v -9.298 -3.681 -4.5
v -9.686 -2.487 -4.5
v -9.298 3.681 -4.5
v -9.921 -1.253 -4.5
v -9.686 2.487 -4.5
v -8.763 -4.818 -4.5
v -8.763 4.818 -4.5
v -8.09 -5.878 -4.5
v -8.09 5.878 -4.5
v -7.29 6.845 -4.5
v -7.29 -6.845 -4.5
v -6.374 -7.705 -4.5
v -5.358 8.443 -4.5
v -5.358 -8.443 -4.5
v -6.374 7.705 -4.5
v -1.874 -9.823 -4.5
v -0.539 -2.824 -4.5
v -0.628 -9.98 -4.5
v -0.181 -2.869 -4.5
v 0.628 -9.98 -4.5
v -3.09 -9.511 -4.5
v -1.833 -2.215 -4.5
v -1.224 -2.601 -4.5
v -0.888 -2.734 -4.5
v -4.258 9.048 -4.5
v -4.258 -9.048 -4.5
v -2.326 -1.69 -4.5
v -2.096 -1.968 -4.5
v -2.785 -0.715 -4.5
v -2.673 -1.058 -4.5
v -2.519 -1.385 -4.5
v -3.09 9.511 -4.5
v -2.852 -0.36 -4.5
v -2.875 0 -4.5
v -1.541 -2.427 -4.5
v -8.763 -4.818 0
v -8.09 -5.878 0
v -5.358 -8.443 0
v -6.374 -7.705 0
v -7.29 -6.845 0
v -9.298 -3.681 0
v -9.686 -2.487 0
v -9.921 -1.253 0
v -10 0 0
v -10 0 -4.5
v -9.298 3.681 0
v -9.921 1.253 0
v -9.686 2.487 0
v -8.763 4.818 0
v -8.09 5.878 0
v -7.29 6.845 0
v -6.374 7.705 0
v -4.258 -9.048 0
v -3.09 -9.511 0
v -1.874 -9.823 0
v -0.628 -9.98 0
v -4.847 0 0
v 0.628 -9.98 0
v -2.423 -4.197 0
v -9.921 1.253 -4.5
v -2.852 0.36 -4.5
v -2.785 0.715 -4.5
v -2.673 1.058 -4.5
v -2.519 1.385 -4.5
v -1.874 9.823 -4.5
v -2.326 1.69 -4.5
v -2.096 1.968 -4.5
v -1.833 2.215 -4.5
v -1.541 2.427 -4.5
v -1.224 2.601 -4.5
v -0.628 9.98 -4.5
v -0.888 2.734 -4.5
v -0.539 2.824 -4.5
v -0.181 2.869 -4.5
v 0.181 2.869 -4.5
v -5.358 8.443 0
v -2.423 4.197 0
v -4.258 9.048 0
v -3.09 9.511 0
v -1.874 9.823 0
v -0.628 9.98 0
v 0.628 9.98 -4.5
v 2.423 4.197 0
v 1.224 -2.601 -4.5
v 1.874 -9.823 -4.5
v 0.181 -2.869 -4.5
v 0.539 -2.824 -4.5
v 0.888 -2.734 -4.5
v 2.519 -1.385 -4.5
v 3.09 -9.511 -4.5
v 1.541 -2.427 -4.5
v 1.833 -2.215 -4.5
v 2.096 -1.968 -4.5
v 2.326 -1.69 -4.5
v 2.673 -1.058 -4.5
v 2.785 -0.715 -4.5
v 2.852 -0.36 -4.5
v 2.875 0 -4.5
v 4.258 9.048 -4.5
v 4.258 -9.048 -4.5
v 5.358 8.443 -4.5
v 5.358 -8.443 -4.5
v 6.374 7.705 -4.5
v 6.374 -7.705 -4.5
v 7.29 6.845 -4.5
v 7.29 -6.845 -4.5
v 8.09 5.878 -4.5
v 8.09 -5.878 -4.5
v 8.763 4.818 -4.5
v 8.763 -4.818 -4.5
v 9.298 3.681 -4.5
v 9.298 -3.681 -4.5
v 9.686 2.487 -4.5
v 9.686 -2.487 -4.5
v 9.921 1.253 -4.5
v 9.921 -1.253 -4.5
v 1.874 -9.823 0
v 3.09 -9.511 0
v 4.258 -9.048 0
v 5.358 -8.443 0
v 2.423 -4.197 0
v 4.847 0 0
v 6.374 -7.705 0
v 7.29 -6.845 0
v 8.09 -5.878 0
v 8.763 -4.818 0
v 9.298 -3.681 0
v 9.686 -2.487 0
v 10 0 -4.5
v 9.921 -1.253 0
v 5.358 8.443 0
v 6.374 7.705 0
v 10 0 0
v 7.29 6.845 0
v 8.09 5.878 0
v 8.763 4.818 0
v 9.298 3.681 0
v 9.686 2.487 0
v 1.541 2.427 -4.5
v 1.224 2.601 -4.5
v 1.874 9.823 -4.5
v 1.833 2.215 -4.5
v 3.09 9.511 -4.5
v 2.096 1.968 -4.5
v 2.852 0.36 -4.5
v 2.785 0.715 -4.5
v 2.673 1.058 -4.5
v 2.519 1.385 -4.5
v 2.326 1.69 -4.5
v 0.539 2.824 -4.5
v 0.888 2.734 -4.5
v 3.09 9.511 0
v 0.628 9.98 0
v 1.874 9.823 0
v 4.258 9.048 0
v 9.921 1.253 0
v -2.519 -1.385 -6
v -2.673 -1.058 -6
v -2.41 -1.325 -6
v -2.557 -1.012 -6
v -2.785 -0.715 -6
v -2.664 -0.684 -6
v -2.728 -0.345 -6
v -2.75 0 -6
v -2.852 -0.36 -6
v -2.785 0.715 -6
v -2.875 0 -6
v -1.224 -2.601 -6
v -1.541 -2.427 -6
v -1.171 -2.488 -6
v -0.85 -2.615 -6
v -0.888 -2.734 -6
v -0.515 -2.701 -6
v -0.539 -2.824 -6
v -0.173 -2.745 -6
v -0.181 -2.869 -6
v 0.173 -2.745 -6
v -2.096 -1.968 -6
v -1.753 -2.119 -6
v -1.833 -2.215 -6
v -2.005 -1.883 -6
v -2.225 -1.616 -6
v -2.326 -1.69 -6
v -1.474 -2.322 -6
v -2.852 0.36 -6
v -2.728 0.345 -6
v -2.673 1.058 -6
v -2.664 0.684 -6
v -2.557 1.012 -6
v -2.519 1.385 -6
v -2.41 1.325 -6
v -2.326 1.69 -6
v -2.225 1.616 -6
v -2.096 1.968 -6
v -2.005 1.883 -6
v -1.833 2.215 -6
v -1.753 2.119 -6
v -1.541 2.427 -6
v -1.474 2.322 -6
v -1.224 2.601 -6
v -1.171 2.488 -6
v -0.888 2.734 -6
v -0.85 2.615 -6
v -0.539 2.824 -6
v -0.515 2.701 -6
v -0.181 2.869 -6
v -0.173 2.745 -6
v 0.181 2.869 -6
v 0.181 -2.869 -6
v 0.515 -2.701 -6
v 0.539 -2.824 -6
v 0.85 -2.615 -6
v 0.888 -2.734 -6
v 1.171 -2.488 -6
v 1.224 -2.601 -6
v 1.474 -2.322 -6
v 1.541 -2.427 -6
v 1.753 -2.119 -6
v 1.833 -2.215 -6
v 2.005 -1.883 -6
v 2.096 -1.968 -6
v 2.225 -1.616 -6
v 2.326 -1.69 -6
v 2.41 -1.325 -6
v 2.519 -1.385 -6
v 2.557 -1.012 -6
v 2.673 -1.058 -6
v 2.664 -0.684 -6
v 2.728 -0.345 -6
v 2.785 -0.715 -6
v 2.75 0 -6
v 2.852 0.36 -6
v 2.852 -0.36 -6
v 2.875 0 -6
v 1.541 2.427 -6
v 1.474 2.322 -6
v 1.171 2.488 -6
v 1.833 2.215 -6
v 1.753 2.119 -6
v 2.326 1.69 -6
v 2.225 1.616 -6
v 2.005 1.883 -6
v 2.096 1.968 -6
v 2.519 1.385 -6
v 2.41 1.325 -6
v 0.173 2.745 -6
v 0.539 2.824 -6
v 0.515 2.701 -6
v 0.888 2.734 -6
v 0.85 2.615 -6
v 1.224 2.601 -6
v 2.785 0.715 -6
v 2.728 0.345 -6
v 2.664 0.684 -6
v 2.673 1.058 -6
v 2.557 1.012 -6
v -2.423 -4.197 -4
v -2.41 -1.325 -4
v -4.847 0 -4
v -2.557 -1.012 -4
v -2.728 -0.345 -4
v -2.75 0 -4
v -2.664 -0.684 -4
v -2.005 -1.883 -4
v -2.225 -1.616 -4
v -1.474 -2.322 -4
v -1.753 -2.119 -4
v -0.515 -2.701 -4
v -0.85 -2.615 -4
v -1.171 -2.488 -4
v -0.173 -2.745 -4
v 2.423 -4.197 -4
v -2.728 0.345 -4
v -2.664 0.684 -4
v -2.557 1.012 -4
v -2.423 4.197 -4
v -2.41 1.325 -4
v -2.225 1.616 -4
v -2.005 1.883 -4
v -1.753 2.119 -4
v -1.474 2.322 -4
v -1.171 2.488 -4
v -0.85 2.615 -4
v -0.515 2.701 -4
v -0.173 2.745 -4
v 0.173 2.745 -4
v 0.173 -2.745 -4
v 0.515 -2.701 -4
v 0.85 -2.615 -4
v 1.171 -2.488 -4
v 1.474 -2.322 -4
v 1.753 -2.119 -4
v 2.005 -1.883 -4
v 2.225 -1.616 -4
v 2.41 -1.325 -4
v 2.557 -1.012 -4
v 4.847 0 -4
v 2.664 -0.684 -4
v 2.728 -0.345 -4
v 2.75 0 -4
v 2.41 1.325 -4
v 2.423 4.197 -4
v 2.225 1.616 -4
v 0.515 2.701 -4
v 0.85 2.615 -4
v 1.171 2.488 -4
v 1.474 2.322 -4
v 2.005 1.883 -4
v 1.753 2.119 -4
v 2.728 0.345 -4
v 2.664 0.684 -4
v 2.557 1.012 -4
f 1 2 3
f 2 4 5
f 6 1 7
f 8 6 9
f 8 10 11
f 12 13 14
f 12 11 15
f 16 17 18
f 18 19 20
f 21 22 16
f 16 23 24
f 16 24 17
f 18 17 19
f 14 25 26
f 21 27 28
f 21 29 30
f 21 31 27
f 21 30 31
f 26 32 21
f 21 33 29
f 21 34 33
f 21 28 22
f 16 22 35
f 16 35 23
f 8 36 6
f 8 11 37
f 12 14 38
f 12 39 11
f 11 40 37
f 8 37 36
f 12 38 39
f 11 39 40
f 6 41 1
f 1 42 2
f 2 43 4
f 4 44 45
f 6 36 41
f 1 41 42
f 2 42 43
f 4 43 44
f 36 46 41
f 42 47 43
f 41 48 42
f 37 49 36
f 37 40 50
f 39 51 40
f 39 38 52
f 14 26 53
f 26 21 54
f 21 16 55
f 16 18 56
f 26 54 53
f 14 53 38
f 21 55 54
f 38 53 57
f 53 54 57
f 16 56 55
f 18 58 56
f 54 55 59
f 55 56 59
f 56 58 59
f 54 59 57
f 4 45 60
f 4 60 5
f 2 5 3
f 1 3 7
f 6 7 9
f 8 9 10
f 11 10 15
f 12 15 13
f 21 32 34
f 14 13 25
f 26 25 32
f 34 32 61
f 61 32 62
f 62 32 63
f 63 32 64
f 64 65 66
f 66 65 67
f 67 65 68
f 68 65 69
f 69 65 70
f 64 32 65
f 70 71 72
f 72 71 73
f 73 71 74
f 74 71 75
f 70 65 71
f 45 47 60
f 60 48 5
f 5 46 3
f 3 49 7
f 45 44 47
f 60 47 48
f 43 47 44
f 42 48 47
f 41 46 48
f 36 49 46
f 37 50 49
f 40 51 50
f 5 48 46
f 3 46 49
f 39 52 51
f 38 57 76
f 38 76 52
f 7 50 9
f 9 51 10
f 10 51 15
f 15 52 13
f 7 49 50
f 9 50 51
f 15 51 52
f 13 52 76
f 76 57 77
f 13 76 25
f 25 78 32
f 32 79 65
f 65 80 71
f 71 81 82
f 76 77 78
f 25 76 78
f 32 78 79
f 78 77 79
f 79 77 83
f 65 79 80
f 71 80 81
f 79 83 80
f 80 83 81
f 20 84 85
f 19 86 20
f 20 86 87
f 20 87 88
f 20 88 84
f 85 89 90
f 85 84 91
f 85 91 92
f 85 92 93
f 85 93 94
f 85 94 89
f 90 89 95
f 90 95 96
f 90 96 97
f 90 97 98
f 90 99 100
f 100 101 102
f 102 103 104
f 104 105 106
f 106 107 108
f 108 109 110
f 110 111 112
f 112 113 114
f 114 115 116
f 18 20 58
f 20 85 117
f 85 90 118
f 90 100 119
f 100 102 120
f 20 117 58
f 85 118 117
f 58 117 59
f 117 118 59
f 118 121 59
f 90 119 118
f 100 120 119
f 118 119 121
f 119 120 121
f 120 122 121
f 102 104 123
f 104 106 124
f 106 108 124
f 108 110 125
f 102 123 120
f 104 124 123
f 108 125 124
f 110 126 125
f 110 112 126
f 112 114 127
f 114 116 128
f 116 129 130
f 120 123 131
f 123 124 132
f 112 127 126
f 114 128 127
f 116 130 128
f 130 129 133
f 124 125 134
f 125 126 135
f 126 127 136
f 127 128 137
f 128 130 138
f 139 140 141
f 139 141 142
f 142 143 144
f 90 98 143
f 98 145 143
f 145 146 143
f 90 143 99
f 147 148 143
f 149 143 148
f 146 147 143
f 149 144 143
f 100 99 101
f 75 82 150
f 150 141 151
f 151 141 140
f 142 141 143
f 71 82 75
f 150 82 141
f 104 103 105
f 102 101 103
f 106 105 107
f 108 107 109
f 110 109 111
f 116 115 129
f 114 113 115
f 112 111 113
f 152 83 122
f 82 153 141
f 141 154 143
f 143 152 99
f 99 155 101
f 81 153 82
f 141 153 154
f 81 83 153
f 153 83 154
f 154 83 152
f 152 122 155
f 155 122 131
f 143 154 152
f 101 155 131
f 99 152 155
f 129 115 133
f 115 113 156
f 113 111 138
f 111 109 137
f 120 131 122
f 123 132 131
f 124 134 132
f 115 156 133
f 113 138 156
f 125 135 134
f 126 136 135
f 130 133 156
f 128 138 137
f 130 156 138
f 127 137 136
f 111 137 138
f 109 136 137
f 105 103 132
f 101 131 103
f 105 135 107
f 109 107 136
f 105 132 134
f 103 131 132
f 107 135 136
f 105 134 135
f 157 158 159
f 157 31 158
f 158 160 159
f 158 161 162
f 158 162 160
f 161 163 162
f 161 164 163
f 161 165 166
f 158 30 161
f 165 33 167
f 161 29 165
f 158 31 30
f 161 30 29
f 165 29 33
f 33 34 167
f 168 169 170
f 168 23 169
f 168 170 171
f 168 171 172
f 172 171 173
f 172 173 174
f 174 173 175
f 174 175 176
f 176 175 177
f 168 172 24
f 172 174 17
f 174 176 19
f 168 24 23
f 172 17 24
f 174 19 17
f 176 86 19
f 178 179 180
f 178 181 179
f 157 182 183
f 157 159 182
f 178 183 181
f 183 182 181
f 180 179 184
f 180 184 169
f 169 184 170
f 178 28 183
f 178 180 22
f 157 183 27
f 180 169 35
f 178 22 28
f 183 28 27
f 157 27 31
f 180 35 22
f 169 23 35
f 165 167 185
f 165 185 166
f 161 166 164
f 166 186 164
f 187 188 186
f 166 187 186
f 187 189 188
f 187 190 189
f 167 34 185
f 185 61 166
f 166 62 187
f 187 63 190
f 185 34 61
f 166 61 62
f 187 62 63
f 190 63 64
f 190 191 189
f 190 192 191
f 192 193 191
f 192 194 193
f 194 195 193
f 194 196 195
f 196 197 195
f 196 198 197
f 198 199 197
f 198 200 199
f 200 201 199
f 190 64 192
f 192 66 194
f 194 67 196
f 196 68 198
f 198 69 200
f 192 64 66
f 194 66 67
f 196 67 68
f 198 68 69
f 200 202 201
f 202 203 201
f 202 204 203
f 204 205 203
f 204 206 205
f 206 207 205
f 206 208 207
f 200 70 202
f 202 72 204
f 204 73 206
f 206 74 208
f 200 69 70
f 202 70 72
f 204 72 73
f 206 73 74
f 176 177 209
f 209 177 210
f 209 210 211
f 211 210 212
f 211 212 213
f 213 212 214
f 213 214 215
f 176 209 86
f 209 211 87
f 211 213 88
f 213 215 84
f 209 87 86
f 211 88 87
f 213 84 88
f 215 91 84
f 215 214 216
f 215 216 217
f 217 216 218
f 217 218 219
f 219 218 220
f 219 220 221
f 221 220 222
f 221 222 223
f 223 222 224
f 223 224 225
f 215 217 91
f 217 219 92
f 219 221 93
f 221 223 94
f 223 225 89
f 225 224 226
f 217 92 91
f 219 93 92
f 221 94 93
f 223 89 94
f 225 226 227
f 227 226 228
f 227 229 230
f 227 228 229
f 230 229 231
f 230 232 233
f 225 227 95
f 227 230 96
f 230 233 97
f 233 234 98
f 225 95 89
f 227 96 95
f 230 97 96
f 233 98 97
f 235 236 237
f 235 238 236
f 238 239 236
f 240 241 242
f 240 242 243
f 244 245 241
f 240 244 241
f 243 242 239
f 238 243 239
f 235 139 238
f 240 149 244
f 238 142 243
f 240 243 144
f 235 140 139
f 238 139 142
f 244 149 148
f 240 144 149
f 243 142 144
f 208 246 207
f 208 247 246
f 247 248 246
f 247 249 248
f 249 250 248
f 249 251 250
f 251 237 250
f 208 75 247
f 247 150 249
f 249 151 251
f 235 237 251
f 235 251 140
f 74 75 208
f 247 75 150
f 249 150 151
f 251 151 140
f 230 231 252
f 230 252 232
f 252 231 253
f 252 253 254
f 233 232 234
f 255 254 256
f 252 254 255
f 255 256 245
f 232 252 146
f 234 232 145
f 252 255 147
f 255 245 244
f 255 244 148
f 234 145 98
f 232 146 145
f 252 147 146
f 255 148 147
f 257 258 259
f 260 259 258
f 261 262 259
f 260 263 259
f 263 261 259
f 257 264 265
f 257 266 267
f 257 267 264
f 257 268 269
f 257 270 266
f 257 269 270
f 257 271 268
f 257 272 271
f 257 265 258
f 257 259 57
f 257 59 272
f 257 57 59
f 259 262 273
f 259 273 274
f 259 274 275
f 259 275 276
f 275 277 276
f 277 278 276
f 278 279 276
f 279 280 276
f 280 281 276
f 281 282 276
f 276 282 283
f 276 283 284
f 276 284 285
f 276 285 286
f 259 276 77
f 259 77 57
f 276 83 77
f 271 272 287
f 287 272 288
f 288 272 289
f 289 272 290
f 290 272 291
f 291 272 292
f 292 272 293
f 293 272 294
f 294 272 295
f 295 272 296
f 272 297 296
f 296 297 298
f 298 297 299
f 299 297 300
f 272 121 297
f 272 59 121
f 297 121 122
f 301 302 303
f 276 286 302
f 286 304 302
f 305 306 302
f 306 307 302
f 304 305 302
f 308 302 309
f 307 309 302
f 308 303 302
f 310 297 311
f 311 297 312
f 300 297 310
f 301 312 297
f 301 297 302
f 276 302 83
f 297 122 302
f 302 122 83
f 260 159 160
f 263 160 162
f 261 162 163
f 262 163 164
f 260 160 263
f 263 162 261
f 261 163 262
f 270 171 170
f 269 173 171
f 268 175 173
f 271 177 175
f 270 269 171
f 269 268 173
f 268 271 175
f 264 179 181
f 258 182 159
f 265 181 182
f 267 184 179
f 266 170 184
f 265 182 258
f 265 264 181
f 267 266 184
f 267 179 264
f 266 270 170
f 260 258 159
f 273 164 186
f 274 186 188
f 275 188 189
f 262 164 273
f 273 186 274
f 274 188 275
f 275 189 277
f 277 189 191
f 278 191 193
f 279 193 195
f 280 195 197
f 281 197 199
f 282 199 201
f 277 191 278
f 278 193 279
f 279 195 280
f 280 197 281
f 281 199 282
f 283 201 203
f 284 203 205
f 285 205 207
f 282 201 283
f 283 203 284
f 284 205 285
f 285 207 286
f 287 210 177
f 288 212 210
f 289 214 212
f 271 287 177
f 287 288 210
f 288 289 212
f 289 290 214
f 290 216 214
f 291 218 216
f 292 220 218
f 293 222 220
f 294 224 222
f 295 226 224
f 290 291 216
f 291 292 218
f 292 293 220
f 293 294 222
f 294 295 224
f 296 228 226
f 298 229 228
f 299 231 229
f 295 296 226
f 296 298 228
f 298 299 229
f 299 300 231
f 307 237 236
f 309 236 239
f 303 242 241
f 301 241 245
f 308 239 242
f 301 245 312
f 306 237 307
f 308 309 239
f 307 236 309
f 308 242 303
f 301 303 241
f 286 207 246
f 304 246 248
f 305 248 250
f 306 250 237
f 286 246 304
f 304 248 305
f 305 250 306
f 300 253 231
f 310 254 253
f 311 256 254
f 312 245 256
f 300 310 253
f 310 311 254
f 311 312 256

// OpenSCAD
$fn = 50;

difference() {
	union() {
		translate(v = [0, 0, -4.5]) {
			cylinder(h = 4.5, r = 10.0);
		}
		#translate(v = [0, 0, -6.0]) {
			cylinder(h = 6, r = 2.875);
		}
	}
	union() {
		translate(v = [0, 0, 0]) {
			rotate(a = [0, 0, 0]) {
				difference() {
					union() {
						translate(v = [0, 0, -4]) {
							linear_extrude(height = 4) {
								polygon(points = [[4.8468, 0.0], [2.4234000000000004, 4.197451927062417], [-2.423399999999999, 4.197451927062417], [-4.8468, 5.935618106107392e-16], [-2.423400000000002, -4.197451927062416], [2.423399999999997, -4.197451927062419]]);
							}
						}
					}
					union();
				}
			}
		}
		#translate(v = [0, 0, -100.0]) {
			cylinder(h = 200, r = 2.75);
		}
	}
}
